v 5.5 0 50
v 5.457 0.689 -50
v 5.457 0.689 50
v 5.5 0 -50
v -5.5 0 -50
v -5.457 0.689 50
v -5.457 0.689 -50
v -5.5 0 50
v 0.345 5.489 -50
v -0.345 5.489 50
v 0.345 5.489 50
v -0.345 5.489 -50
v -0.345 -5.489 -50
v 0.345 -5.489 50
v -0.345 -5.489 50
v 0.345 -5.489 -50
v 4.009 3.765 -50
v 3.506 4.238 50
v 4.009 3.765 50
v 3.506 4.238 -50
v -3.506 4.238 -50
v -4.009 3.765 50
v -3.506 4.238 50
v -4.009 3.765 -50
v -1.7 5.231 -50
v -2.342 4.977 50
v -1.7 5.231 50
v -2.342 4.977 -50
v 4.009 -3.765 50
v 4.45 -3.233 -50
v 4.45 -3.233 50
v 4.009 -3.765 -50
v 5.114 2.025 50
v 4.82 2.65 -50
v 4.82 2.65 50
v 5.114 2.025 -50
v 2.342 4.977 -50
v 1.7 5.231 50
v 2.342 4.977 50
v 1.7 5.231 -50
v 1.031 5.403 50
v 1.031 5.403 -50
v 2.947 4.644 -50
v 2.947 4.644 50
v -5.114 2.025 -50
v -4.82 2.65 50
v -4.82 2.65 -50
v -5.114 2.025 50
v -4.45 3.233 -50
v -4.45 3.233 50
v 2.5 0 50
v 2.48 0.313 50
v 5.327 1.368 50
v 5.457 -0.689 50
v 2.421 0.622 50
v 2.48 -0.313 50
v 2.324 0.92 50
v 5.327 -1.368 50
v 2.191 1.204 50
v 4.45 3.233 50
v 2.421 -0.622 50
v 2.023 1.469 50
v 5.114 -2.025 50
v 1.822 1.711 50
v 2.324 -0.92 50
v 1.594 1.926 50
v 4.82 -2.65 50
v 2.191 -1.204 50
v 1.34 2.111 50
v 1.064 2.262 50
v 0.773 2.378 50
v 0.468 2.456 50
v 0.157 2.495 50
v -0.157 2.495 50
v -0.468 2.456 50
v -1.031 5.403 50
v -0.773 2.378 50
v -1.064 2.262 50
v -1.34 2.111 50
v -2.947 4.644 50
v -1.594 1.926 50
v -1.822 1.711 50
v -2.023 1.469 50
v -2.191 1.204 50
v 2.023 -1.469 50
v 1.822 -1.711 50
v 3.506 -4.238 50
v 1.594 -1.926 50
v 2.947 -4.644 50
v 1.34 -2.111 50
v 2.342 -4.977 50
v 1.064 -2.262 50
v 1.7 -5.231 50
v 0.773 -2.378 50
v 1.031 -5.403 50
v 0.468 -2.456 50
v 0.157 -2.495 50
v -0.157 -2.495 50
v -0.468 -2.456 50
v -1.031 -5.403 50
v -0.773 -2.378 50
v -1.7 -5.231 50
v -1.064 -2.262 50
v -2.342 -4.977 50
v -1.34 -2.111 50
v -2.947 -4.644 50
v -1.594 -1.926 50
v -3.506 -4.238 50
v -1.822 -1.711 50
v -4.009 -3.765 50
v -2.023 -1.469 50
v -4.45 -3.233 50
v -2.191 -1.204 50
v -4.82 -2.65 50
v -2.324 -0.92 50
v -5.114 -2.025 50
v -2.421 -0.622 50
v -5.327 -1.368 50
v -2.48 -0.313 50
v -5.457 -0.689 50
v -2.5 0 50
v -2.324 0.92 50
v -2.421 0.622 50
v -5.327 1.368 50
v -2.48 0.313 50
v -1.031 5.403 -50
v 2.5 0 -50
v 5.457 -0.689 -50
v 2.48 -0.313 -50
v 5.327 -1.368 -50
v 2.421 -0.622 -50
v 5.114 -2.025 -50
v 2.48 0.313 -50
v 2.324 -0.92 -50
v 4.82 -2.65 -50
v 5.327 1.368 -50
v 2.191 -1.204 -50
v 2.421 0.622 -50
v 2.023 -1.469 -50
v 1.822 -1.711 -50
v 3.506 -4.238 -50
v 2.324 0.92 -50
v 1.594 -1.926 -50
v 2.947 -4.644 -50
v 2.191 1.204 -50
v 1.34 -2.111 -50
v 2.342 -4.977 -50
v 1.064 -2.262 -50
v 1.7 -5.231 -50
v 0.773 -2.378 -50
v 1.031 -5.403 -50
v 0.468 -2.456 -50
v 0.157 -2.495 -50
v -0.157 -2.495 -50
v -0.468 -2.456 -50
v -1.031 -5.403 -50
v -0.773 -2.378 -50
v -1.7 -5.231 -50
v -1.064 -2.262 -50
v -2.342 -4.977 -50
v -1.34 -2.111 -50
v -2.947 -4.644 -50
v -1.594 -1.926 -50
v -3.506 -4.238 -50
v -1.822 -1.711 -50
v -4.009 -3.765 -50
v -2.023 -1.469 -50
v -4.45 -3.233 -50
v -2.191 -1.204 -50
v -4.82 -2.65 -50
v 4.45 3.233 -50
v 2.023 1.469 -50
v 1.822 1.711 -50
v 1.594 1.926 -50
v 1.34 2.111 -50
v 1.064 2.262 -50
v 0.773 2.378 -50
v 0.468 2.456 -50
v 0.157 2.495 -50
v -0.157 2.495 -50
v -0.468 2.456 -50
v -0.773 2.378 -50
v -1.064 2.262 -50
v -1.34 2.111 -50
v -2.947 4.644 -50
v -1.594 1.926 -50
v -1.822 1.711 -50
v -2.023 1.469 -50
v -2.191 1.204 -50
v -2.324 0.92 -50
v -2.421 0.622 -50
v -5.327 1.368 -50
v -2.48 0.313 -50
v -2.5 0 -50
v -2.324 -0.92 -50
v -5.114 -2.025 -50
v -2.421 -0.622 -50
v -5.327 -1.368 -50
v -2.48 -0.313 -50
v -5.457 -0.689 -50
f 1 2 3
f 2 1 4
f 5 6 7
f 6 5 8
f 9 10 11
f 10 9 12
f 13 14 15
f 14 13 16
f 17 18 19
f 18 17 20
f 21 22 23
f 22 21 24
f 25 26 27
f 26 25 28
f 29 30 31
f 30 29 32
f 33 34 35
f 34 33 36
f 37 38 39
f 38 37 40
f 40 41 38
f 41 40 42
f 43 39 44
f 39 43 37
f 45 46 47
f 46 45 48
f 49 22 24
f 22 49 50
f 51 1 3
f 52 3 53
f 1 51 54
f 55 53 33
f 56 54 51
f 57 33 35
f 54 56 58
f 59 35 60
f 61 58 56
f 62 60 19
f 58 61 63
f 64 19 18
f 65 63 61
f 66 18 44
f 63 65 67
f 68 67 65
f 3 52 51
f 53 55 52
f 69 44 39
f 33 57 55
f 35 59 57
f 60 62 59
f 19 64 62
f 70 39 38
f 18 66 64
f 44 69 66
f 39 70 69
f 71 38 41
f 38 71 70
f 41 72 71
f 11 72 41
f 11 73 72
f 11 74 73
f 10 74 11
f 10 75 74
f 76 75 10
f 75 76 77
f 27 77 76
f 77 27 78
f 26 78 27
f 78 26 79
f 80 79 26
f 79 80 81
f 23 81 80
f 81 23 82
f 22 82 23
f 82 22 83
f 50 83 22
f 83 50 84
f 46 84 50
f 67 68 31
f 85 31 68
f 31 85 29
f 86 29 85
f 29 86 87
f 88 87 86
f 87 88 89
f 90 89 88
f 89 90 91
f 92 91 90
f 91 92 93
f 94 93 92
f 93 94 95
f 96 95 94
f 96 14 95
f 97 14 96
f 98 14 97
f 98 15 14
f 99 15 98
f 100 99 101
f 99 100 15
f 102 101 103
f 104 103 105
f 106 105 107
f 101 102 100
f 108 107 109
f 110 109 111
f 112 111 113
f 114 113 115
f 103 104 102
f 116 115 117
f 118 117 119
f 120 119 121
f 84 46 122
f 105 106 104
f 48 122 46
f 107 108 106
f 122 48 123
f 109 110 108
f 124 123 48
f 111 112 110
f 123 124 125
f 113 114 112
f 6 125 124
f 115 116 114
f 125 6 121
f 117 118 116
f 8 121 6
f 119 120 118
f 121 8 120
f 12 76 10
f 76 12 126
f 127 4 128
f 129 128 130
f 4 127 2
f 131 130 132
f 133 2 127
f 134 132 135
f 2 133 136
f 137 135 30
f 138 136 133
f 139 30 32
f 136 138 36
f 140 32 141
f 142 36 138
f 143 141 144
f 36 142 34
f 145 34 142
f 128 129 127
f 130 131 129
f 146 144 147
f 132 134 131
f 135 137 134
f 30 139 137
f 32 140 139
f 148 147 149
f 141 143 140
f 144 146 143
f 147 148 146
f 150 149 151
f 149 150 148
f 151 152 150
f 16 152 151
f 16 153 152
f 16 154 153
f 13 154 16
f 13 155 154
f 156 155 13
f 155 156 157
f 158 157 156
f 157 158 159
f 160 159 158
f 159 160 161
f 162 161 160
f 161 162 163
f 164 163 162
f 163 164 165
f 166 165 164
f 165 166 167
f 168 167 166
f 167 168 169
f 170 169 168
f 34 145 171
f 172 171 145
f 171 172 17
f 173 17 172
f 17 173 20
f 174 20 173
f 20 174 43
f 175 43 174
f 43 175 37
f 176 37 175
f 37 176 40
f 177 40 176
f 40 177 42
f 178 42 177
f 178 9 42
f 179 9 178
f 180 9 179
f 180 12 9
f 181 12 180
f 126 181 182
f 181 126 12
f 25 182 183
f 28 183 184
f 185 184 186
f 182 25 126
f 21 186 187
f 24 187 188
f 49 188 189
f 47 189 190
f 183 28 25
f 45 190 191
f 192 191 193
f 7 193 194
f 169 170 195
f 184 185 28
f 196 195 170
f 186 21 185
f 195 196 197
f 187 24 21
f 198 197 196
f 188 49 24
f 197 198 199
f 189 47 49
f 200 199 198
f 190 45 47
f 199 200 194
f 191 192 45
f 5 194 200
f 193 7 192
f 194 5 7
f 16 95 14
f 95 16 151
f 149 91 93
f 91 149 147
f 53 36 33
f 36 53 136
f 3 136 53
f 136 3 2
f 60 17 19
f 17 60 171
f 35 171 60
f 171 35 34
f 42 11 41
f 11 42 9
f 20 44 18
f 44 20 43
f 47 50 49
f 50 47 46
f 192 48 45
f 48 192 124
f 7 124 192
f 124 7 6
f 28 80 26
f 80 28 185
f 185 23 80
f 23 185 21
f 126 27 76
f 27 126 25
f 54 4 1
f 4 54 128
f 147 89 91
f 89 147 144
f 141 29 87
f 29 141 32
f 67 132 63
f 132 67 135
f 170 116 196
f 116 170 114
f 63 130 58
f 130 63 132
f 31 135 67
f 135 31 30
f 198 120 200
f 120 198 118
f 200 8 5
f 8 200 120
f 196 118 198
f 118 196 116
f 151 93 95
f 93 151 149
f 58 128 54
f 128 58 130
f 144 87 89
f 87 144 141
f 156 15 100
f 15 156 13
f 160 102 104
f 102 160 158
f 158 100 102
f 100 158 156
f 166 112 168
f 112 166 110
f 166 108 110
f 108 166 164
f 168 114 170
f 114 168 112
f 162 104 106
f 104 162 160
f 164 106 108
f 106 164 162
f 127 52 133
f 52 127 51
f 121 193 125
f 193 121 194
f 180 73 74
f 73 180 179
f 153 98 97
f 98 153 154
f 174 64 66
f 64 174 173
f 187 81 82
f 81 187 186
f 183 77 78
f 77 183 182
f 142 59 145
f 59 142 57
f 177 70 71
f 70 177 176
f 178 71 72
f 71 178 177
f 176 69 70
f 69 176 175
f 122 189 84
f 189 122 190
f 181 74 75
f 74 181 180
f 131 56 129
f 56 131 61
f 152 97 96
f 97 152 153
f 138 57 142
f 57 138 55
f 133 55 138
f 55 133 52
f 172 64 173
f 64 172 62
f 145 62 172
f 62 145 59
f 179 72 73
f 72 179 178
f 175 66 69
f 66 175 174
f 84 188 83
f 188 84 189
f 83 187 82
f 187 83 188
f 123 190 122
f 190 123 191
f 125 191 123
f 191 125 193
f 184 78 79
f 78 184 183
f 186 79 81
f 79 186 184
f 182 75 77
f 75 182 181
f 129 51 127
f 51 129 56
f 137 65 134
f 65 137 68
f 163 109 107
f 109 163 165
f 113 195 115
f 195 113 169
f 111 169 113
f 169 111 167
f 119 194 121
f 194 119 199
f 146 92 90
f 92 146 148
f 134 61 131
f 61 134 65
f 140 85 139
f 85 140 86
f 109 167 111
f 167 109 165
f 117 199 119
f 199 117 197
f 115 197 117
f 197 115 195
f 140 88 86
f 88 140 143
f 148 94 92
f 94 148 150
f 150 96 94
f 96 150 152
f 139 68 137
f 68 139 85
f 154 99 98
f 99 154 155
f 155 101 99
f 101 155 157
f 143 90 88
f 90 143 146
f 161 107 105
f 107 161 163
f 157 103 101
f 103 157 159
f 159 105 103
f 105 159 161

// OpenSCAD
$fn = 50;


difference() {
	union() {
		translate(v = [0, 0, -50.0000000000]) {
			cylinder(h = 100, r = 5.5000000000);
		}
	}
	union() {
		translate(v = [0, 0, -100.0000000000]) {
			cylinder(h = 200, r = 2.5000000000);
		}
	}
}
